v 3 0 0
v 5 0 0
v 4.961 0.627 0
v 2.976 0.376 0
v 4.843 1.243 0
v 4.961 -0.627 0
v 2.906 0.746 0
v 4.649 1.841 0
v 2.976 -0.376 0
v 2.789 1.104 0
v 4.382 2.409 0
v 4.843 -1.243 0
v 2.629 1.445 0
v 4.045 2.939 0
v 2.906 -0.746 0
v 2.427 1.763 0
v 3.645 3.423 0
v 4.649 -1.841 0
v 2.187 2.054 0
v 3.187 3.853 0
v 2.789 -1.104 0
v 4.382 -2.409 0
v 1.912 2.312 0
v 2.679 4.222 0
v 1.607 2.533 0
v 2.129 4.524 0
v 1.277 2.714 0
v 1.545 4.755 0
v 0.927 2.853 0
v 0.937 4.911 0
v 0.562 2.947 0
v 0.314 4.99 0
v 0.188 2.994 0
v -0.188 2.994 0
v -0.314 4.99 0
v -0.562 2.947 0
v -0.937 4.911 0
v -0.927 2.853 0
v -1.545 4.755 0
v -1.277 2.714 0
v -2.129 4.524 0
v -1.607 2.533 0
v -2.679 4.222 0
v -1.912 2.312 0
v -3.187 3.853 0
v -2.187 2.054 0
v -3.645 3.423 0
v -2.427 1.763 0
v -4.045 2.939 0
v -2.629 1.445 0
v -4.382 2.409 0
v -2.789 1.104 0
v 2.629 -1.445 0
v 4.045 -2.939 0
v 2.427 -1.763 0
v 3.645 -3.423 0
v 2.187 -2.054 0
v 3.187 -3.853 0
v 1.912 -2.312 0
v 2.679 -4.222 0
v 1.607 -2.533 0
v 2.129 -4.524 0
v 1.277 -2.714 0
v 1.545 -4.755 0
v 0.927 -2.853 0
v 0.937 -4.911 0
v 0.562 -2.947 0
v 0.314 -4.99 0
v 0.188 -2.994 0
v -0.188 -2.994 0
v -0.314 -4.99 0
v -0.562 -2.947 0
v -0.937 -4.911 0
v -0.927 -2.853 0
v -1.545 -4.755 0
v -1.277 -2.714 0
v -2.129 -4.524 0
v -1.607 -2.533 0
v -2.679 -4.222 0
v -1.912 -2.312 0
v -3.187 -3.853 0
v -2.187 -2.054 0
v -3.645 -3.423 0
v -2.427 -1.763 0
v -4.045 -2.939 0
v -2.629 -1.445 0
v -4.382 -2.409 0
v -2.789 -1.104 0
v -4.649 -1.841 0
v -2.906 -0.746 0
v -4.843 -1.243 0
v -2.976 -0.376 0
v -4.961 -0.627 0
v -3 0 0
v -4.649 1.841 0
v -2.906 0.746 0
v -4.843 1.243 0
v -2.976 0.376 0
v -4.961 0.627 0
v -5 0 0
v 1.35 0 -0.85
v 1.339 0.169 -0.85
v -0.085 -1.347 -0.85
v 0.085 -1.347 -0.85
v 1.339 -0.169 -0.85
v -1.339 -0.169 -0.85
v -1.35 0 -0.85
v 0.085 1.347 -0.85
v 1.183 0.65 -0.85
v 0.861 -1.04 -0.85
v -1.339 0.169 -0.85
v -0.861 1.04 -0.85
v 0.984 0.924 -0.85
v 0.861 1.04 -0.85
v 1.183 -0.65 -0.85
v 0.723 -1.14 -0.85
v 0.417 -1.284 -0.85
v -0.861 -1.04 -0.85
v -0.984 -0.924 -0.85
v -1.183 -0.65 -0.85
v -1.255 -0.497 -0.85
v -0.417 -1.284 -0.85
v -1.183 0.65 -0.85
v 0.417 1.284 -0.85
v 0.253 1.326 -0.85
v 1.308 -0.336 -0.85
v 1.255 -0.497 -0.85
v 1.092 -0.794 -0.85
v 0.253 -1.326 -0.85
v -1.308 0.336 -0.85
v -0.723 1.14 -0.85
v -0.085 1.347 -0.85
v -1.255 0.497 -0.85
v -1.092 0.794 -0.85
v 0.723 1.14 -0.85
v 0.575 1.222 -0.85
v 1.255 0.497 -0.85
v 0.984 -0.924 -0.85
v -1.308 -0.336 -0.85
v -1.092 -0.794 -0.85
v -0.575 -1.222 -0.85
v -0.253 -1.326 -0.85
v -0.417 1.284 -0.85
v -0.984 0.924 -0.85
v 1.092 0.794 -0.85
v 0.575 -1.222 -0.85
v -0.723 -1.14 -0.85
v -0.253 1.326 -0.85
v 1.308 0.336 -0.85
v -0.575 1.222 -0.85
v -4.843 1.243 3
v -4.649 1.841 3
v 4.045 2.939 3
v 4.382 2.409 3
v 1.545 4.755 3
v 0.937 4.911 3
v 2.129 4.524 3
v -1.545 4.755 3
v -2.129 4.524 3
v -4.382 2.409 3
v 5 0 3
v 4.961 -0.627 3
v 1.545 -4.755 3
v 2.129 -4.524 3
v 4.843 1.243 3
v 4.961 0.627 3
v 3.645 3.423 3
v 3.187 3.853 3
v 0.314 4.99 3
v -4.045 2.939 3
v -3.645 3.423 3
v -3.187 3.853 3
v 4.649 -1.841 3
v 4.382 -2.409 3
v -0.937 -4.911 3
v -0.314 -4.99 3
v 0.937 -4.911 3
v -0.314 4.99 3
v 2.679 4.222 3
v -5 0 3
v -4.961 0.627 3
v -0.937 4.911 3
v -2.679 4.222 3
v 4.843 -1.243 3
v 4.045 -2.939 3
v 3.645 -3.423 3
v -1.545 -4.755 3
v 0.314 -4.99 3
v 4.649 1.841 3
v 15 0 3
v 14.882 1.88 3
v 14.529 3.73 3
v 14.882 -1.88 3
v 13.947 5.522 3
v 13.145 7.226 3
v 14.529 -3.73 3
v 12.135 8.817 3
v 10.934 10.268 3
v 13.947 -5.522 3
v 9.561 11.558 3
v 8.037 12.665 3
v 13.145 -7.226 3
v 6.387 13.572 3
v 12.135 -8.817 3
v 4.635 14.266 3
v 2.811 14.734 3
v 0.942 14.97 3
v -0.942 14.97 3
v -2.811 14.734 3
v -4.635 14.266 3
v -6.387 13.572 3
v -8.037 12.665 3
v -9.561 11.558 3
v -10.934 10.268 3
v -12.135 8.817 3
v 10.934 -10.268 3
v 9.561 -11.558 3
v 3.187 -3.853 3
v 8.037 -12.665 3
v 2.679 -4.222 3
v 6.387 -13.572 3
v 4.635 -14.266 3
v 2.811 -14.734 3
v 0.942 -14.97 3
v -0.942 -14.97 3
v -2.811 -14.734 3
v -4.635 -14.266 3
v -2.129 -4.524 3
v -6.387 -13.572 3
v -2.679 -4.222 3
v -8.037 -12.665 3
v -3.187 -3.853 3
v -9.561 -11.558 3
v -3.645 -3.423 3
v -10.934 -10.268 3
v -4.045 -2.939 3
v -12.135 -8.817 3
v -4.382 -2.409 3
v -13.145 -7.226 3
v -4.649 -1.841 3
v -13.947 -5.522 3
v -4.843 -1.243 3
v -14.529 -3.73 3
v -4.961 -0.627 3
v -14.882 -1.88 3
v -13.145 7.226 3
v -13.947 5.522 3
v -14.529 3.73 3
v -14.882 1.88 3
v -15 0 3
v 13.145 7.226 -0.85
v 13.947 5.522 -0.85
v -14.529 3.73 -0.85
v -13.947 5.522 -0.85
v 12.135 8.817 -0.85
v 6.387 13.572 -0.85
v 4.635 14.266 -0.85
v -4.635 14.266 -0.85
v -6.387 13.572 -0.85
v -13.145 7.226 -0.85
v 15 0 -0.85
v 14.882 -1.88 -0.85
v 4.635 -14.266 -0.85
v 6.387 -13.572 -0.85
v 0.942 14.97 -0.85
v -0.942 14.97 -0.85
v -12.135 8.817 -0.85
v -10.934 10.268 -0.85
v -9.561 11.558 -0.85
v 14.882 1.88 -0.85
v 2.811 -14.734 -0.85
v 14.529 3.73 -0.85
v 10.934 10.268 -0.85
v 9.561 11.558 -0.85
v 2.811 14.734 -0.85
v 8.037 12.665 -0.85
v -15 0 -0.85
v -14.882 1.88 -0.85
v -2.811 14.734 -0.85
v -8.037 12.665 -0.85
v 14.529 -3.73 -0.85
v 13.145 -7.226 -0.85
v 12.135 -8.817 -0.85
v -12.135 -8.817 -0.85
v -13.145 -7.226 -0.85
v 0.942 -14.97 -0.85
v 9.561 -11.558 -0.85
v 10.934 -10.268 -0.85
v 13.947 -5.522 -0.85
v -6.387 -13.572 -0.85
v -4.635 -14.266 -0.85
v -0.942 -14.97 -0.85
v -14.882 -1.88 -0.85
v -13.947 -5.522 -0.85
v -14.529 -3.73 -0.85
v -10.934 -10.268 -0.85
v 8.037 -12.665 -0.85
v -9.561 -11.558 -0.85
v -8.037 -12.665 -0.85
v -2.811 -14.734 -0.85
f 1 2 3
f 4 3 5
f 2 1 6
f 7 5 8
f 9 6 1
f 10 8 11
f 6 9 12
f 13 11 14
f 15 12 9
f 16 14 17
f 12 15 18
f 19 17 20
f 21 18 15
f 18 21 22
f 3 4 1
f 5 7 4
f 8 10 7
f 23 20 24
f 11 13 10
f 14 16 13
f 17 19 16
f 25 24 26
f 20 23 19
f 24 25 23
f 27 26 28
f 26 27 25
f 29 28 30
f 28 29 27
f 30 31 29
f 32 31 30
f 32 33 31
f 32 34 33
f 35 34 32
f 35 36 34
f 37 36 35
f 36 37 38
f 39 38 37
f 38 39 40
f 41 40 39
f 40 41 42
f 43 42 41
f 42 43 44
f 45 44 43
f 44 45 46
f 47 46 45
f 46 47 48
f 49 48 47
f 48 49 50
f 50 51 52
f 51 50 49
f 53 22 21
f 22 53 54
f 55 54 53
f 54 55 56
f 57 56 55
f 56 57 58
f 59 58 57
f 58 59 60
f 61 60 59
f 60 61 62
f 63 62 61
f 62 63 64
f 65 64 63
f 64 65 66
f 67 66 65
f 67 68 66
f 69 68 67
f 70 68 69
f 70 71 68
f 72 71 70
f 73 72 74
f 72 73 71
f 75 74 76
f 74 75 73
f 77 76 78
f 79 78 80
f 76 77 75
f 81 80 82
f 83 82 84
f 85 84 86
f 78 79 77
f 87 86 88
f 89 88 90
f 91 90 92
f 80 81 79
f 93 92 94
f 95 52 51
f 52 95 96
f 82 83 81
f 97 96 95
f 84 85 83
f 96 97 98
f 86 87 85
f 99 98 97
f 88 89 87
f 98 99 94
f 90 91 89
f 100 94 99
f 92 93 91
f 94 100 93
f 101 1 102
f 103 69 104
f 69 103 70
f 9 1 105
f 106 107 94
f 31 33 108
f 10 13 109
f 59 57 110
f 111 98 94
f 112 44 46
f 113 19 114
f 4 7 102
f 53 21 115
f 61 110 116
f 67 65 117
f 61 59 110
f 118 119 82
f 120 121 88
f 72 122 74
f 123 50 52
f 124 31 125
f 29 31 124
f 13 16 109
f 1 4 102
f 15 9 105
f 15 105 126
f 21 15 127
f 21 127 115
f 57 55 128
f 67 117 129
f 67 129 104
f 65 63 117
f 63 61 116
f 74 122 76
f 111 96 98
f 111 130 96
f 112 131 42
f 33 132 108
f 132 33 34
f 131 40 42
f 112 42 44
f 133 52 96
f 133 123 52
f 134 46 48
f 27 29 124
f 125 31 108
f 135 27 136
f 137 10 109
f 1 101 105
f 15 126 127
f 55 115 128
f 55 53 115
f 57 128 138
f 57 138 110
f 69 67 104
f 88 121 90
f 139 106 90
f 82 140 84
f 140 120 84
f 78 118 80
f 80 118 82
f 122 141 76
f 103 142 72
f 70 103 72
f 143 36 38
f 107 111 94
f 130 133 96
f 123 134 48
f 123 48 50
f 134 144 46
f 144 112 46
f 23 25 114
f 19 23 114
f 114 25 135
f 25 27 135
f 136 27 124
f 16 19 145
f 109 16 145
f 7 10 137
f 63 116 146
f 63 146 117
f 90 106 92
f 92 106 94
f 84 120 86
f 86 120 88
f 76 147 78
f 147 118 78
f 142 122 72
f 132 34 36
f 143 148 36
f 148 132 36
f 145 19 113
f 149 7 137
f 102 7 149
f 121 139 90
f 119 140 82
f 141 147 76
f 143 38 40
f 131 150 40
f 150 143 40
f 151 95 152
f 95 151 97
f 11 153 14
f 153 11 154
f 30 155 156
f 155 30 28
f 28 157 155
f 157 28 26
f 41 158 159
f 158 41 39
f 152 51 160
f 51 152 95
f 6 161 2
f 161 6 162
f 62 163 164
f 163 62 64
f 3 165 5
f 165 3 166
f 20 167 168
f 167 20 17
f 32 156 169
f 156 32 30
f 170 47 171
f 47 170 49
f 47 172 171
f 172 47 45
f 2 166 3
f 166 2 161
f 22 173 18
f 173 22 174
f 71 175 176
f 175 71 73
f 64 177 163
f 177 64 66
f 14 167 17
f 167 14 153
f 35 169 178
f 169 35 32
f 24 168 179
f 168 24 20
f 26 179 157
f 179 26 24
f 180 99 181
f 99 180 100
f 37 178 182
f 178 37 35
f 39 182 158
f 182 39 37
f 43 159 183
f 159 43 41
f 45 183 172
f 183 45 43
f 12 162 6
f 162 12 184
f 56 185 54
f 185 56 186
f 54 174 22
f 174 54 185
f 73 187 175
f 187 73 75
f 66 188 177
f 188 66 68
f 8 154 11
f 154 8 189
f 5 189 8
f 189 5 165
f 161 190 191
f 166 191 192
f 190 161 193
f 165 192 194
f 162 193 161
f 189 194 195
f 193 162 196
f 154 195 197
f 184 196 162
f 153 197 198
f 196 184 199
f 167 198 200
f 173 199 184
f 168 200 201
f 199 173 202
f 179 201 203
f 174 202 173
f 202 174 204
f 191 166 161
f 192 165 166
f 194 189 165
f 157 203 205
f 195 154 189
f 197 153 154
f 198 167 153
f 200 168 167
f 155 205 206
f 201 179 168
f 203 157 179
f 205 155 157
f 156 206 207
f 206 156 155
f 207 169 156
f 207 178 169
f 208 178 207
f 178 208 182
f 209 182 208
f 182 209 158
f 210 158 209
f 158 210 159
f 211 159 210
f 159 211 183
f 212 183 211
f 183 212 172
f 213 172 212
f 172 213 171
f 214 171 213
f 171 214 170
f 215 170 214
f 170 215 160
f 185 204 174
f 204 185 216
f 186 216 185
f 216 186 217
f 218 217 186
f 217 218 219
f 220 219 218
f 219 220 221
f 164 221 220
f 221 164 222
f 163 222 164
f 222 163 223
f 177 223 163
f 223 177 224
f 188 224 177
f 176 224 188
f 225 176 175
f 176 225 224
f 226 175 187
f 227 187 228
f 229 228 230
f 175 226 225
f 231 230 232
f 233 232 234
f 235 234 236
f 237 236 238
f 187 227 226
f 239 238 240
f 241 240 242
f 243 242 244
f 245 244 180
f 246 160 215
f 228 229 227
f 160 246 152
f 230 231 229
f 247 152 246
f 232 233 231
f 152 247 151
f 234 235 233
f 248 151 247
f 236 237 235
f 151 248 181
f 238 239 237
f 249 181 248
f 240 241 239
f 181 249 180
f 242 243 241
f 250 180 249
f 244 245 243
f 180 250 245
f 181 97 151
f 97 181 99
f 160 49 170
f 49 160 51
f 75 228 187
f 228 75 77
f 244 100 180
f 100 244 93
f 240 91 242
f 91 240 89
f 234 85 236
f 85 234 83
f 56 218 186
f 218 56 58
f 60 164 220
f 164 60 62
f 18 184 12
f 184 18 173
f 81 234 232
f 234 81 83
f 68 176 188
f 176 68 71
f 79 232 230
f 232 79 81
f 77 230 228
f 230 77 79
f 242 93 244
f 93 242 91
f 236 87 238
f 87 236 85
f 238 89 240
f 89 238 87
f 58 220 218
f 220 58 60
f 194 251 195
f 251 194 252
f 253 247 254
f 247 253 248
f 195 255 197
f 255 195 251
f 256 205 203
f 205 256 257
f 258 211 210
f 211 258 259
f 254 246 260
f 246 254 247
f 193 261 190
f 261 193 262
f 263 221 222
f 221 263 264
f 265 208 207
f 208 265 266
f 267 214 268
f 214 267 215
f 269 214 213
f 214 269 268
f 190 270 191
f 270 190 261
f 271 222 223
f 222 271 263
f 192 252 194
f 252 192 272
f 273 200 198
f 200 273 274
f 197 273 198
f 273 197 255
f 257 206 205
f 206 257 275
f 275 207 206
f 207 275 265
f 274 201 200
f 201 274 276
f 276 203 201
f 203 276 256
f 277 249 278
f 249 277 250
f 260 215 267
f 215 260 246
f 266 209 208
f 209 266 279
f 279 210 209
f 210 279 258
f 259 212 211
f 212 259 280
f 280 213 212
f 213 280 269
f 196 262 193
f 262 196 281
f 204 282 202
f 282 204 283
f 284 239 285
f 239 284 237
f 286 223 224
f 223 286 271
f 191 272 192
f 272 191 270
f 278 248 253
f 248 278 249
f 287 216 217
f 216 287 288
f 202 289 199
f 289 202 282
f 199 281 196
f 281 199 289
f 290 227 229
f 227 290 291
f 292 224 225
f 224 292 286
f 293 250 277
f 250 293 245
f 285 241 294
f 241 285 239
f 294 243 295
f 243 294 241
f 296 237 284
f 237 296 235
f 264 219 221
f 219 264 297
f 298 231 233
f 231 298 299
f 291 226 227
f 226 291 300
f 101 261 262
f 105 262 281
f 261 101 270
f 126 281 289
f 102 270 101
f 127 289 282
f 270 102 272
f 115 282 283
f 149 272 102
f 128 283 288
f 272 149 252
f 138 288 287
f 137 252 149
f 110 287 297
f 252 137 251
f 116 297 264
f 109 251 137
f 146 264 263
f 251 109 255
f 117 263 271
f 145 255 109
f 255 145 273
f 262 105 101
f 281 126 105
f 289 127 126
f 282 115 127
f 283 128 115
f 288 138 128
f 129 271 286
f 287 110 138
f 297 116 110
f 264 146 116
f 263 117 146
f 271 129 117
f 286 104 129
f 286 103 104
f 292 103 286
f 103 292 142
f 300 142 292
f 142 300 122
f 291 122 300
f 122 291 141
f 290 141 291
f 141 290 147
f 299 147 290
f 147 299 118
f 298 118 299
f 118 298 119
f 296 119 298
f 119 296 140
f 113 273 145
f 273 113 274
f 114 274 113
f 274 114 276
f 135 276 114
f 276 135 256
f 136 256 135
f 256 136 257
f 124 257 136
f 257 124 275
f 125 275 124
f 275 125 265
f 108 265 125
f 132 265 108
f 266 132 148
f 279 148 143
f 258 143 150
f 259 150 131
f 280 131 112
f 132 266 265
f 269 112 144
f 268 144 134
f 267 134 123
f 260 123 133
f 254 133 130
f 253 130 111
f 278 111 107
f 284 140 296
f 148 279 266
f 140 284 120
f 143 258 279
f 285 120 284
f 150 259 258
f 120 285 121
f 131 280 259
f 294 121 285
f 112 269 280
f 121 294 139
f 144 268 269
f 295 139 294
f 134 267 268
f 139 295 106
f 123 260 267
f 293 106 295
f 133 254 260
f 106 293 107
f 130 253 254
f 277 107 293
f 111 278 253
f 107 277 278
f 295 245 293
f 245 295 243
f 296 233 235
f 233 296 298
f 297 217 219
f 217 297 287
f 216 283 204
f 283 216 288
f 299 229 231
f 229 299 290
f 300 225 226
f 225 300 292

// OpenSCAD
$fn = 50;


difference() {
	union() {
		translate(v = [0, 0, -0.8500000000]) {
			cylinder(h = 3.8500000000, r = 15.0000000000);
		}
	}
	union() {
		translate(v = [0, 0, 0]) {
			rotate(a = [0, 0, 0]) {
				difference() {
					union() {
						translate(v = [0, 0, -3.8500000000]) {
							cylinder(h = 3.8500000000, r = 1.0000000000);
						}
						translate(v = [0, 0, -0.8500000000]) {
							cylinder(h = 0.8500000000, r1 = 1.3500000000, r2 = 3.0000000000);
						}
						translate(v = [0, 0, -3.8500000000]) {
							cylinder(h = 3.8500000000, r = 1.3500000000);
						}
						translate(v = [0, 0, -3.8500000000]) {
							cylinder(h = 3.8500000000, r = 1.0000000000);
						}
					}
					union();
				}
			}
		}
		#cylinder(h = 3, r = 5.0000000000);
	}
}
